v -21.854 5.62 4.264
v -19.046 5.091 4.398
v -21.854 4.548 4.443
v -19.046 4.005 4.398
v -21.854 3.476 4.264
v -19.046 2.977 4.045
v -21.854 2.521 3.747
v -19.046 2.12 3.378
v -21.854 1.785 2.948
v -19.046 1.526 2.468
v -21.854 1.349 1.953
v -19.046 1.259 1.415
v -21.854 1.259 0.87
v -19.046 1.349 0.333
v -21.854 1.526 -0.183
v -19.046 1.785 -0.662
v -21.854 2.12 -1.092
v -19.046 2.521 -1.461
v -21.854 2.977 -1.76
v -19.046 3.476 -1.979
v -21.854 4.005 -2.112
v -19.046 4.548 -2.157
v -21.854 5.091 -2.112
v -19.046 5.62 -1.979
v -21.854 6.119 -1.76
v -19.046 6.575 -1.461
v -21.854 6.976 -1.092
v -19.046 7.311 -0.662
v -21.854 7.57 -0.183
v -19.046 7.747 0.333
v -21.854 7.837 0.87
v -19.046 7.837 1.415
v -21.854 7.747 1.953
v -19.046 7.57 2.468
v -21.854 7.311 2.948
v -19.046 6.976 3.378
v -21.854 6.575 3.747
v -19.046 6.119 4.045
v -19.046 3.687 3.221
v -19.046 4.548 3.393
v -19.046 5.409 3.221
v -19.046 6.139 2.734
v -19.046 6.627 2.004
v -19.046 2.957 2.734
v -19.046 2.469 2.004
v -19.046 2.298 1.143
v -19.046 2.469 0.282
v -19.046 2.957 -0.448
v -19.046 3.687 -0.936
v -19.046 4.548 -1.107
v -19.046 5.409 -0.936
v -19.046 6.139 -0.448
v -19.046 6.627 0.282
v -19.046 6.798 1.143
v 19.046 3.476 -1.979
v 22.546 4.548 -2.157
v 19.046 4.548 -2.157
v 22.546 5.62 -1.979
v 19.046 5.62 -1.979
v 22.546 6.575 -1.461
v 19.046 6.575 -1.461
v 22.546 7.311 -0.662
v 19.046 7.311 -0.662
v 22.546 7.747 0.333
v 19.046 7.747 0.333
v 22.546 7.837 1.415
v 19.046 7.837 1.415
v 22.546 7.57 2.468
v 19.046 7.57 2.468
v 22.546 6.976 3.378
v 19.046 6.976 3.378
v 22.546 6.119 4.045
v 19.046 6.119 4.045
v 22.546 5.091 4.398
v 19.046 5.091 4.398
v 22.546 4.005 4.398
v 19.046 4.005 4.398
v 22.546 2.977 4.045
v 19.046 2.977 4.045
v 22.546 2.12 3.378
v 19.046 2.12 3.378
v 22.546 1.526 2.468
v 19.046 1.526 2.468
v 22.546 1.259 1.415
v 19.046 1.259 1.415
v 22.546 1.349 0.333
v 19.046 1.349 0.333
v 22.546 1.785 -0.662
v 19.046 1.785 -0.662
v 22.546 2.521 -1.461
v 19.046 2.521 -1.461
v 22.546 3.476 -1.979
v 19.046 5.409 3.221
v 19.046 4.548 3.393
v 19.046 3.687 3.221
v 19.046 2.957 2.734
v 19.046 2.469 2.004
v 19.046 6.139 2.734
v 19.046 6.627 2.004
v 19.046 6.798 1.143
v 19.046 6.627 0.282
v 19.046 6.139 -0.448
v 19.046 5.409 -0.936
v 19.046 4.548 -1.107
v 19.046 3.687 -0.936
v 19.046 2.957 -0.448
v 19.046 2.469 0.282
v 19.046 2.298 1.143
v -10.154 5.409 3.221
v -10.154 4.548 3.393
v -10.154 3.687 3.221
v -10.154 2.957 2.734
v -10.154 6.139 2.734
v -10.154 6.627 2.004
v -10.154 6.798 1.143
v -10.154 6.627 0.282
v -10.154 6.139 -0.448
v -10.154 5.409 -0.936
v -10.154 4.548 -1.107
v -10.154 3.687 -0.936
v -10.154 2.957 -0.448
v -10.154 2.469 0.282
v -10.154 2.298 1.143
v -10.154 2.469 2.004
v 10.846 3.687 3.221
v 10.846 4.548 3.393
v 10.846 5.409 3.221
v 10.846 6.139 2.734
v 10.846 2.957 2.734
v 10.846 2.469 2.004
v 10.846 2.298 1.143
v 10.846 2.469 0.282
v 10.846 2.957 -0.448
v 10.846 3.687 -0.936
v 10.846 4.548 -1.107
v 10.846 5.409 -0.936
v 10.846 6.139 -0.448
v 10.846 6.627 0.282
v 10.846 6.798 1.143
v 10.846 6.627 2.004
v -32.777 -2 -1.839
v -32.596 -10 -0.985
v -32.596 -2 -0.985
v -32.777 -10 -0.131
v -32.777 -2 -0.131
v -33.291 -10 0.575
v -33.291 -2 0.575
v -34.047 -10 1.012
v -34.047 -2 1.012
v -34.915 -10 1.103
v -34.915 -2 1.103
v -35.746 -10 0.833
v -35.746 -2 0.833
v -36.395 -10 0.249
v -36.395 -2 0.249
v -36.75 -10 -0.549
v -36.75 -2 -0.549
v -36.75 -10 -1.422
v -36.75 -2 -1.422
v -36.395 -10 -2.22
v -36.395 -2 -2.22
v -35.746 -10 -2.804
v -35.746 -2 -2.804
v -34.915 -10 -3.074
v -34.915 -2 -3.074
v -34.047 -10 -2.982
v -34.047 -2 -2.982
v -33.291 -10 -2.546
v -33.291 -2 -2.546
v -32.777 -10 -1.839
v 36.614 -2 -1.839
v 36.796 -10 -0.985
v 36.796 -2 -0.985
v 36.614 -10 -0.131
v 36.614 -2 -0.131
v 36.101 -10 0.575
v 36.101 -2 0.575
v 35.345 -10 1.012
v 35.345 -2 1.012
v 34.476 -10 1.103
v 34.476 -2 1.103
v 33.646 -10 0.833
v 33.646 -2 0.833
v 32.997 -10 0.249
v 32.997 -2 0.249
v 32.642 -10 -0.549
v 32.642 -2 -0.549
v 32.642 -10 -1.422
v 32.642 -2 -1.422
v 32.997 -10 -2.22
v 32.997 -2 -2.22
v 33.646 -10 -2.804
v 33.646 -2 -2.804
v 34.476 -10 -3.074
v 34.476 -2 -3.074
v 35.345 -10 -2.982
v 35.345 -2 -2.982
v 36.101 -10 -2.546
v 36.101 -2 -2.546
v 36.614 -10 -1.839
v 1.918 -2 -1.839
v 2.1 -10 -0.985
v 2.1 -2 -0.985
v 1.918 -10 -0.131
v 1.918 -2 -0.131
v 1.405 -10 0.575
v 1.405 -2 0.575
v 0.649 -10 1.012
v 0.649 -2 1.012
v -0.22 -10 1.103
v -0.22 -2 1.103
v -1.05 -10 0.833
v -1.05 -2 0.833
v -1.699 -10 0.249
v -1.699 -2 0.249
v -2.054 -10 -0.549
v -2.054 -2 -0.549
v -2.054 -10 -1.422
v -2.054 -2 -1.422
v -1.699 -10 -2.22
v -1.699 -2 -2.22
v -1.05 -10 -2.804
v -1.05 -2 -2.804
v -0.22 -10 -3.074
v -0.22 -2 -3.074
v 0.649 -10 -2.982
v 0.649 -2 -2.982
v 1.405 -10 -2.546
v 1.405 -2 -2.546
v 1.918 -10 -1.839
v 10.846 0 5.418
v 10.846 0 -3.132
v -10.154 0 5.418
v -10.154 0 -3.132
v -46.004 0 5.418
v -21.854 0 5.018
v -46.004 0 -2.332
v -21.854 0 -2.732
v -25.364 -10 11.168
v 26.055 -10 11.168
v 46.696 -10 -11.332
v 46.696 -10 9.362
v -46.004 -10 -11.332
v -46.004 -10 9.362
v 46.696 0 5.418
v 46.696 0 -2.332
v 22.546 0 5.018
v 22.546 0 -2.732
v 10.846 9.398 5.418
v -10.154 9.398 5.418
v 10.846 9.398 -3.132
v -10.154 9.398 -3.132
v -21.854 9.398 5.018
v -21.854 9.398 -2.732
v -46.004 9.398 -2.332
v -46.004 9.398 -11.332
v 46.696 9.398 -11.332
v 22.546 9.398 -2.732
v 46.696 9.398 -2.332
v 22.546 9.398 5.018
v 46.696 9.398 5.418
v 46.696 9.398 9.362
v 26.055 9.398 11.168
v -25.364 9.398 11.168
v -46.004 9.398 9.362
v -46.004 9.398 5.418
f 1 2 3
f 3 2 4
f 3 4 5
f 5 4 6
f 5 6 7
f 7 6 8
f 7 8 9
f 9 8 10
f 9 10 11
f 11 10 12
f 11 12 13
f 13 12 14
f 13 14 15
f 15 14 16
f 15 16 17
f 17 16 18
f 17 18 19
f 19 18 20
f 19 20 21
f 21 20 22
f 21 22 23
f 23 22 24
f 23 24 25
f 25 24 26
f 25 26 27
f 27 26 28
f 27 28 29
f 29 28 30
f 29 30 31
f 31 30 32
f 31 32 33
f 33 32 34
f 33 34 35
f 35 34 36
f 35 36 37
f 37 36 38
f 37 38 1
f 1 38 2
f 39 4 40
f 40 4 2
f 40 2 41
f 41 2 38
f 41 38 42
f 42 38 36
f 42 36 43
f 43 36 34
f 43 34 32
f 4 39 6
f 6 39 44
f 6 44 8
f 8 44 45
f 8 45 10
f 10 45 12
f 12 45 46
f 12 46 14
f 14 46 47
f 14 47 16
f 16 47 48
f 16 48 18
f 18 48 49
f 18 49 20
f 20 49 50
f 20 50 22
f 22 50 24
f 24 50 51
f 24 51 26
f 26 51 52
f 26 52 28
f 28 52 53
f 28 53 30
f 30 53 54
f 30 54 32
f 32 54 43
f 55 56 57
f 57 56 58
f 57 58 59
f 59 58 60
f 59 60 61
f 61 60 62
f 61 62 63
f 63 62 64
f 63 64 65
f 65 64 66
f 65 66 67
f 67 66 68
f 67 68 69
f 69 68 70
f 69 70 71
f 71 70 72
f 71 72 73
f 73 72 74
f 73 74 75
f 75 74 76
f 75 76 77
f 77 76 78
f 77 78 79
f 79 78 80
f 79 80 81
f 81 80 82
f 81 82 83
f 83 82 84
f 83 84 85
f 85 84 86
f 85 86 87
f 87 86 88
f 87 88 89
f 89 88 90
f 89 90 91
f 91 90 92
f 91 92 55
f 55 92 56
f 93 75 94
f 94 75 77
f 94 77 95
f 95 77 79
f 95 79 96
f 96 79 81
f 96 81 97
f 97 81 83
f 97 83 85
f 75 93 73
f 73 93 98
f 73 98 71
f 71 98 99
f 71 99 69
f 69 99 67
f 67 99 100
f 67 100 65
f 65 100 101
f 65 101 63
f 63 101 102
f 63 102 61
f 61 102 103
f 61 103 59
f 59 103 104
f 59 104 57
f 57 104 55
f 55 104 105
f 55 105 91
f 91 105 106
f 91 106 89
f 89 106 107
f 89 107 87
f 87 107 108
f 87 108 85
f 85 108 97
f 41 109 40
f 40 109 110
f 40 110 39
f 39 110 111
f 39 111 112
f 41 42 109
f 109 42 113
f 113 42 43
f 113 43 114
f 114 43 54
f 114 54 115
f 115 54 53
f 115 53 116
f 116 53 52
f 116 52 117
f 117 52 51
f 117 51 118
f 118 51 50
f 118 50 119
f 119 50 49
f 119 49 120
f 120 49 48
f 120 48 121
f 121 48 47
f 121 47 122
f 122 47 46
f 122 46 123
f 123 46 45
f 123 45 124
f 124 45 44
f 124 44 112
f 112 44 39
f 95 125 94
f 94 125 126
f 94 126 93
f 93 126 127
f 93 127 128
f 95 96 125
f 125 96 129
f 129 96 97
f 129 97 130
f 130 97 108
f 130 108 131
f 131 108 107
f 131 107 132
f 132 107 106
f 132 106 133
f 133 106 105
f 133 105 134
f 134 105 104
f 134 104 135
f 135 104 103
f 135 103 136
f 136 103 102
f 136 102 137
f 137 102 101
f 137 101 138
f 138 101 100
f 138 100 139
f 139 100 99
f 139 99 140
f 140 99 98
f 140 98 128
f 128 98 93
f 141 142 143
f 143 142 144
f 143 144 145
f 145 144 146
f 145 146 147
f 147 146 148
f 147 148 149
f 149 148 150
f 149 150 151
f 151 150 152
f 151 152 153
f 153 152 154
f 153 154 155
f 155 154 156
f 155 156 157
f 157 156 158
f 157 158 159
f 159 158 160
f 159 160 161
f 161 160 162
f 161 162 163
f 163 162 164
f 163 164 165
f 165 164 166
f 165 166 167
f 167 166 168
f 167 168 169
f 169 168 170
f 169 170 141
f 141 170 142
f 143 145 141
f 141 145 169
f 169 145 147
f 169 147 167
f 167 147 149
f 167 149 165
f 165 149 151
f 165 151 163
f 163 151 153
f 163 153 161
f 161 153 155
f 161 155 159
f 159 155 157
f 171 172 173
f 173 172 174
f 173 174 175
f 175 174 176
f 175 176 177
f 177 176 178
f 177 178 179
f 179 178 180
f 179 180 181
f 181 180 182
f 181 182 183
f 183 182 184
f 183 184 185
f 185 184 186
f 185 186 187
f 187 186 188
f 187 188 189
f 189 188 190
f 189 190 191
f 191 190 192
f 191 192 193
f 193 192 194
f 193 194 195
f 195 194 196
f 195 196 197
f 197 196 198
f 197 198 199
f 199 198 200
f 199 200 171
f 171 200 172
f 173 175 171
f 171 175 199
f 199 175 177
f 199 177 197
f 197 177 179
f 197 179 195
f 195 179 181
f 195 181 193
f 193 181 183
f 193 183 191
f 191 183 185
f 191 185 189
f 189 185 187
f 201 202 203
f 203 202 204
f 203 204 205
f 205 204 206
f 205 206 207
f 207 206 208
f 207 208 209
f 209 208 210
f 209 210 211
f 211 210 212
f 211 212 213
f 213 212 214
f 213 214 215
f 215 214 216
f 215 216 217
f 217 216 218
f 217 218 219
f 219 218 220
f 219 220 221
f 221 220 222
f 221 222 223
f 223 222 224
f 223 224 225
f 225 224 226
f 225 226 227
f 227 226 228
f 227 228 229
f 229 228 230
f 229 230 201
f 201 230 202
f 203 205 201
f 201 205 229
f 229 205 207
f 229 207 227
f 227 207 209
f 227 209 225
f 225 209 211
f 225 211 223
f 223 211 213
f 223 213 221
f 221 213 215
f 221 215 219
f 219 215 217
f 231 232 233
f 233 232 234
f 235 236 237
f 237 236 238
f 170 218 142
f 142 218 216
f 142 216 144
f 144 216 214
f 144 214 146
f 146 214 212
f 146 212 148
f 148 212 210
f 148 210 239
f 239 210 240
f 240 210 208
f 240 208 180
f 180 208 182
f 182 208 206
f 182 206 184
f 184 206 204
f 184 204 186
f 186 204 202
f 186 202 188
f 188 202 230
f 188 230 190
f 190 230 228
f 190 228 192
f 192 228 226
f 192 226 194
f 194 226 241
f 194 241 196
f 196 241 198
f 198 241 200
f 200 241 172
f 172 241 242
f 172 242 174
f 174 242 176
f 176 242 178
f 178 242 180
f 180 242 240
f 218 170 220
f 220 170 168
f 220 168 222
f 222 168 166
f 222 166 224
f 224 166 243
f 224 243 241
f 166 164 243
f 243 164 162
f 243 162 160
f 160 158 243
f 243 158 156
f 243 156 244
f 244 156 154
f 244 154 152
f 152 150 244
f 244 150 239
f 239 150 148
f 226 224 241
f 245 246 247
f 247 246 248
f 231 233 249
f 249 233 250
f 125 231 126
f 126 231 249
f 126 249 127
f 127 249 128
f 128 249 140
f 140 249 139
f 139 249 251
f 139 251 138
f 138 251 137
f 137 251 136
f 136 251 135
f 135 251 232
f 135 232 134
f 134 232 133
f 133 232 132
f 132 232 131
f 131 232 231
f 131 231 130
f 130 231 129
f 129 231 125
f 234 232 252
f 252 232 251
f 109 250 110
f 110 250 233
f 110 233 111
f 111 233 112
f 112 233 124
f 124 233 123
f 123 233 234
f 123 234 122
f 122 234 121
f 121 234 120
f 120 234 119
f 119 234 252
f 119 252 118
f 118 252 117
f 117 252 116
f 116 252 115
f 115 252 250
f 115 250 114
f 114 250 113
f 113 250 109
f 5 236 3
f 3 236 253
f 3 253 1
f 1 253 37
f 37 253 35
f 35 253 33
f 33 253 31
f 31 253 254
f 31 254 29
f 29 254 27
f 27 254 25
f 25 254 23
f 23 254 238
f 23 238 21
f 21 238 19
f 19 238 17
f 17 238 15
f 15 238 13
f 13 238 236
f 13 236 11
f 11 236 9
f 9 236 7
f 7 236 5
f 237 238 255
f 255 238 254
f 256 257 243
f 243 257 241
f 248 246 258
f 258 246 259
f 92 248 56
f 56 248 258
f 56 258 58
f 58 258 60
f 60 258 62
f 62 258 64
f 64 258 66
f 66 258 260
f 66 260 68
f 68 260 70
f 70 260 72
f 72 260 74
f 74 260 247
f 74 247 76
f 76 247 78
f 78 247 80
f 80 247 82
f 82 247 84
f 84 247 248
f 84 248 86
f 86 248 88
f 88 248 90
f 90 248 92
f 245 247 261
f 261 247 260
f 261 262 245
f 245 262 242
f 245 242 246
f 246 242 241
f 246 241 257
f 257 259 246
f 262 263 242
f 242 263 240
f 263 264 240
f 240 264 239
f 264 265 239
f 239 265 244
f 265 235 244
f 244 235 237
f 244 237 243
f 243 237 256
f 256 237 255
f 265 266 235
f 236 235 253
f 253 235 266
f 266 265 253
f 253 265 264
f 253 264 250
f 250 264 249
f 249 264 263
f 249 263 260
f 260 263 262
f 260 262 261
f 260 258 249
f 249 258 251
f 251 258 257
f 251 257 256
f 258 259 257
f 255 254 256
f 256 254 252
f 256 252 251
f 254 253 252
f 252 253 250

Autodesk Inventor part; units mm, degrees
ref_plane "YZ Plane" through (0, 0, 0) normal (1, 0, 0) x (0, 1, 0)
ref_plane "XZ Plane" through (0, 0, 0) normal (0, 1, 0) x (-1, 0, 0)
ref_plane "XY Plane" through (0, 0, 0) normal (0, 0, 1) x (1, 0, 0)
sketch "Sketch1" plane through (0, 0, 0) normal (0, 1, 0) x (-1, 0, 0)
  line L0 (-10.4458, -2.7323) -> (-10.4458, 5.0177)
  line L1 (-10.4458, 5.0177) -> (9.7542, 5.0177)
  line L2 (9.7542, 5.0177) -> (9.7542, -2.7323)
  line L3 (9.7542, -2.7323) -> (-10.4458, -2.7323)
  line L4 (46.0042, -11.3323) -> (-46.6958, -11.3323)
  line L5 (46.0042, 9.3619) -> (46.0042, -11.3323)
  line L6 (25.3638, 11.1677) -> (46.0042, 9.3619)
  line L7 (-26.0554, 11.1677) -> (25.3638, 11.1677)
  line L8 (-46.6958, 9.3619) -> (-26.0554, 11.1677)
  line L9 (-46.6958, 9.3619) -> (-46.6958, -11.3323)
  line L10 (10.1542, 5.4177) -> (-10.8458, 5.4177)
  line L11 (-10.8458, 5.4177) -> (-10.8458, -3.1323)
  line L12 (-10.8458, -3.1323) -> (10.1542, -3.1323)
  line L13 (10.1542, -3.1323) -> (10.1542, 5.4177)
  line L14 (-10.8458, 5.0177) -> (-22.5458, 5.0177)
  line L15 (-22.5458, 5.0177) -> (-22.5458, -2.7323)
  line L16 (-22.5458, -2.7323) -> (-10.8458, -2.7323)
  line L17 (-0.3458, 5.0177) -> (-0.3458, 1.5521) construction
  line L18 (-22.5458, 5.0177) -> (-46.6958, 5.4177)
  line L19 (-22.5458, -2.7323) -> (-46.6958, -2.3323)
  line L20 (21.8542, 5.0177) -> (46.0042, 5.4177)
  line L21 (21.8542, -2.7323) -> (46.0042, -2.3323)
  line L22 (21.8542, -2.7323) -> (10.1542, -2.7323)
  line L23 (21.8542, 5.0177) -> (21.8542, -2.7323)
  line L24 (10.1542, 5.0177) -> (21.8542, 5.0177)
  point P0 (0, 0)
  dimension "d0" = 0.4
  dimension "d1" = 11.7
extrude "Extrusion1" add sketch "Sketch1" along normal blind 9.398 contours L4 L9 L19 L16 L11 L12 L13 L22 L21 L5 | L20 L24 L13 L10 L11 L14 L18 L9 L8 L7 L6 L5 | L22 L13 L24 L23 | L15 L14 L11 L16
sketch "Sketch2" plane through (0, 0, 0) normal (0, -1, 0) x (1, 0, 0)
  line L0 (-21.8542, 5.0177) -> (-46.0042, 5.4177) projected
  line L1 (-21.8542, -2.7323) -> (-21.8542, 5.0177) projected
  line L2 (-46.0042, -2.3323) -> (-21.8542, -2.7323) projected
  line L3 (-46.0042, -11.3323) -> (-46.0042, -2.3323) projected
  line L4 (46.6958, -11.3323) -> (-46.0042, -11.3323) projected
  line L5 (46.6958, -2.3323) -> (46.6958, -11.3323) projected
  line L6 (22.5458, -2.7323) -> (46.6958, -2.3323) projected
  line L7 (22.5458, 5.0177) -> (22.5458, -2.7323) projected
  line L8 (46.6958, 5.4177) -> (22.5458, 5.0177) projected
  line L9 (46.6958, 9.3619) -> (46.6958, 5.4177) projected
  line L10 (26.0554, 11.1677) -> (46.6958, 9.3619) projected
  line L11 (-25.3638, 11.1677) -> (26.0554, 11.1677) projected
  line L12 (-46.0042, 9.3619) -> (-25.3638, 11.1677) projected
  line L13 (-46.0042, 5.4177) -> (-46.0042, 9.3619) projected
  line L14 (-10.1542, 5.4177) -> (-10.1542, -3.1323) projected
  line L15 (10.8458, 5.4177) -> (-10.1542, 5.4177) projected
  line L16 (10.8458, -3.1323) -> (10.8458, 5.4177) projected
  line L17 (-10.1542, -3.1323) -> (10.8458, -3.1323) projected
  line L18 (46.6958, 5.4177) -> (46.6958, -2.3323)
  line L19 (-46.0042, 5.4177) -> (-46.0042, -2.3323)
  point P0 (0, 0)
extrude "Extrusion2" add sketch "Sketch2" along normal blind 10 contours L1 L2 L19 L0 | L0 L13 L12 L11 L10 L9 L8 L7 L6 L5 L4 L3 L2 L1 | L6 L7 L8 L18 | L15 L16 L17 L14
sketch "Sketch3" plane through (0, -10, 0) normal (0, -1, 0) x (1, 0, 0)
  line L0 (46.6958, 9.3619) -> (26.0554, 11.1677) projected
  line L1 (26.0554, 11.1677) -> (-25.3638, 11.1677) projected
  line L2 (-25.3638, 11.1677) -> (-46.0042, 9.3619) projected
  line L3 (-46.0042, 9.3619) -> (-46.0042, -11.3323) projected
  line L4 (-46.0042, -11.3323) -> (46.6958, -11.3323) projected
  line L5 (46.6958, -11.3323) -> (46.6958, 9.3619) projected
  line L6 (46.6958, -0.9852) -> (-46.0042, -0.9852) construction
  circle A0 centre (34.6958, -0.9852) radius 2.1
  line L7 (0, 0) -> (0, -4.846) construction
  circle A1 centre (-34.6958, -0.9852) radius 2.1
  circle A2 centre (0, -0.9852) radius 2.1
  dimension "d6" = 4.2
  dimension "d7" = 12
  dimension "d10" = 4.2
extrude "Extrusion3" cut sketch "Sketch3" against normal blind 8 contours A0 | A1 | A2
sketch "Sketch4" plane through (22.5458, 9.398, 5.0177) normal (1, 0, 0) x (0, 0, -1)
  circle A0 centre (3.875, -4.85) radius 2.25 projected
  point P0 (5.0177, -9.398)
extrude "Extrusion4" cut sketch "Sketch4" along normal blind 8 and the other way blind 50.0253
sketch "Sketch5" plane through (22.5458, 9.398, 5.0177) normal (1, 0, 0) x (0, 0, -1)
  circle A0 centre (3.875, -4.85) radius 2.25 projected
  line L0 (0, -9.398) -> (7.75, -9.398) projected
  line L1 (7.75, -9.398) -> (7.75, 0) projected
  line L2 (0, 0) -> (7.75, 0) projected
  line L3 (0, -9.398) -> (0, 0) projected
  circle A1 centre (3.875, -4.85) radius 3.3
  point P0 (5.0177, -9.398)
  dimension "d15" = 6.6
extrude "Extrusion5" cut sketch "Sketch5" against normal blind 3.5 contours A0 | A1
mirror "Mirror1" about plane through (0, 0, 0) normal (1, 0, 0) of "Extrusion5"
properties part number "Camera_Clip"
